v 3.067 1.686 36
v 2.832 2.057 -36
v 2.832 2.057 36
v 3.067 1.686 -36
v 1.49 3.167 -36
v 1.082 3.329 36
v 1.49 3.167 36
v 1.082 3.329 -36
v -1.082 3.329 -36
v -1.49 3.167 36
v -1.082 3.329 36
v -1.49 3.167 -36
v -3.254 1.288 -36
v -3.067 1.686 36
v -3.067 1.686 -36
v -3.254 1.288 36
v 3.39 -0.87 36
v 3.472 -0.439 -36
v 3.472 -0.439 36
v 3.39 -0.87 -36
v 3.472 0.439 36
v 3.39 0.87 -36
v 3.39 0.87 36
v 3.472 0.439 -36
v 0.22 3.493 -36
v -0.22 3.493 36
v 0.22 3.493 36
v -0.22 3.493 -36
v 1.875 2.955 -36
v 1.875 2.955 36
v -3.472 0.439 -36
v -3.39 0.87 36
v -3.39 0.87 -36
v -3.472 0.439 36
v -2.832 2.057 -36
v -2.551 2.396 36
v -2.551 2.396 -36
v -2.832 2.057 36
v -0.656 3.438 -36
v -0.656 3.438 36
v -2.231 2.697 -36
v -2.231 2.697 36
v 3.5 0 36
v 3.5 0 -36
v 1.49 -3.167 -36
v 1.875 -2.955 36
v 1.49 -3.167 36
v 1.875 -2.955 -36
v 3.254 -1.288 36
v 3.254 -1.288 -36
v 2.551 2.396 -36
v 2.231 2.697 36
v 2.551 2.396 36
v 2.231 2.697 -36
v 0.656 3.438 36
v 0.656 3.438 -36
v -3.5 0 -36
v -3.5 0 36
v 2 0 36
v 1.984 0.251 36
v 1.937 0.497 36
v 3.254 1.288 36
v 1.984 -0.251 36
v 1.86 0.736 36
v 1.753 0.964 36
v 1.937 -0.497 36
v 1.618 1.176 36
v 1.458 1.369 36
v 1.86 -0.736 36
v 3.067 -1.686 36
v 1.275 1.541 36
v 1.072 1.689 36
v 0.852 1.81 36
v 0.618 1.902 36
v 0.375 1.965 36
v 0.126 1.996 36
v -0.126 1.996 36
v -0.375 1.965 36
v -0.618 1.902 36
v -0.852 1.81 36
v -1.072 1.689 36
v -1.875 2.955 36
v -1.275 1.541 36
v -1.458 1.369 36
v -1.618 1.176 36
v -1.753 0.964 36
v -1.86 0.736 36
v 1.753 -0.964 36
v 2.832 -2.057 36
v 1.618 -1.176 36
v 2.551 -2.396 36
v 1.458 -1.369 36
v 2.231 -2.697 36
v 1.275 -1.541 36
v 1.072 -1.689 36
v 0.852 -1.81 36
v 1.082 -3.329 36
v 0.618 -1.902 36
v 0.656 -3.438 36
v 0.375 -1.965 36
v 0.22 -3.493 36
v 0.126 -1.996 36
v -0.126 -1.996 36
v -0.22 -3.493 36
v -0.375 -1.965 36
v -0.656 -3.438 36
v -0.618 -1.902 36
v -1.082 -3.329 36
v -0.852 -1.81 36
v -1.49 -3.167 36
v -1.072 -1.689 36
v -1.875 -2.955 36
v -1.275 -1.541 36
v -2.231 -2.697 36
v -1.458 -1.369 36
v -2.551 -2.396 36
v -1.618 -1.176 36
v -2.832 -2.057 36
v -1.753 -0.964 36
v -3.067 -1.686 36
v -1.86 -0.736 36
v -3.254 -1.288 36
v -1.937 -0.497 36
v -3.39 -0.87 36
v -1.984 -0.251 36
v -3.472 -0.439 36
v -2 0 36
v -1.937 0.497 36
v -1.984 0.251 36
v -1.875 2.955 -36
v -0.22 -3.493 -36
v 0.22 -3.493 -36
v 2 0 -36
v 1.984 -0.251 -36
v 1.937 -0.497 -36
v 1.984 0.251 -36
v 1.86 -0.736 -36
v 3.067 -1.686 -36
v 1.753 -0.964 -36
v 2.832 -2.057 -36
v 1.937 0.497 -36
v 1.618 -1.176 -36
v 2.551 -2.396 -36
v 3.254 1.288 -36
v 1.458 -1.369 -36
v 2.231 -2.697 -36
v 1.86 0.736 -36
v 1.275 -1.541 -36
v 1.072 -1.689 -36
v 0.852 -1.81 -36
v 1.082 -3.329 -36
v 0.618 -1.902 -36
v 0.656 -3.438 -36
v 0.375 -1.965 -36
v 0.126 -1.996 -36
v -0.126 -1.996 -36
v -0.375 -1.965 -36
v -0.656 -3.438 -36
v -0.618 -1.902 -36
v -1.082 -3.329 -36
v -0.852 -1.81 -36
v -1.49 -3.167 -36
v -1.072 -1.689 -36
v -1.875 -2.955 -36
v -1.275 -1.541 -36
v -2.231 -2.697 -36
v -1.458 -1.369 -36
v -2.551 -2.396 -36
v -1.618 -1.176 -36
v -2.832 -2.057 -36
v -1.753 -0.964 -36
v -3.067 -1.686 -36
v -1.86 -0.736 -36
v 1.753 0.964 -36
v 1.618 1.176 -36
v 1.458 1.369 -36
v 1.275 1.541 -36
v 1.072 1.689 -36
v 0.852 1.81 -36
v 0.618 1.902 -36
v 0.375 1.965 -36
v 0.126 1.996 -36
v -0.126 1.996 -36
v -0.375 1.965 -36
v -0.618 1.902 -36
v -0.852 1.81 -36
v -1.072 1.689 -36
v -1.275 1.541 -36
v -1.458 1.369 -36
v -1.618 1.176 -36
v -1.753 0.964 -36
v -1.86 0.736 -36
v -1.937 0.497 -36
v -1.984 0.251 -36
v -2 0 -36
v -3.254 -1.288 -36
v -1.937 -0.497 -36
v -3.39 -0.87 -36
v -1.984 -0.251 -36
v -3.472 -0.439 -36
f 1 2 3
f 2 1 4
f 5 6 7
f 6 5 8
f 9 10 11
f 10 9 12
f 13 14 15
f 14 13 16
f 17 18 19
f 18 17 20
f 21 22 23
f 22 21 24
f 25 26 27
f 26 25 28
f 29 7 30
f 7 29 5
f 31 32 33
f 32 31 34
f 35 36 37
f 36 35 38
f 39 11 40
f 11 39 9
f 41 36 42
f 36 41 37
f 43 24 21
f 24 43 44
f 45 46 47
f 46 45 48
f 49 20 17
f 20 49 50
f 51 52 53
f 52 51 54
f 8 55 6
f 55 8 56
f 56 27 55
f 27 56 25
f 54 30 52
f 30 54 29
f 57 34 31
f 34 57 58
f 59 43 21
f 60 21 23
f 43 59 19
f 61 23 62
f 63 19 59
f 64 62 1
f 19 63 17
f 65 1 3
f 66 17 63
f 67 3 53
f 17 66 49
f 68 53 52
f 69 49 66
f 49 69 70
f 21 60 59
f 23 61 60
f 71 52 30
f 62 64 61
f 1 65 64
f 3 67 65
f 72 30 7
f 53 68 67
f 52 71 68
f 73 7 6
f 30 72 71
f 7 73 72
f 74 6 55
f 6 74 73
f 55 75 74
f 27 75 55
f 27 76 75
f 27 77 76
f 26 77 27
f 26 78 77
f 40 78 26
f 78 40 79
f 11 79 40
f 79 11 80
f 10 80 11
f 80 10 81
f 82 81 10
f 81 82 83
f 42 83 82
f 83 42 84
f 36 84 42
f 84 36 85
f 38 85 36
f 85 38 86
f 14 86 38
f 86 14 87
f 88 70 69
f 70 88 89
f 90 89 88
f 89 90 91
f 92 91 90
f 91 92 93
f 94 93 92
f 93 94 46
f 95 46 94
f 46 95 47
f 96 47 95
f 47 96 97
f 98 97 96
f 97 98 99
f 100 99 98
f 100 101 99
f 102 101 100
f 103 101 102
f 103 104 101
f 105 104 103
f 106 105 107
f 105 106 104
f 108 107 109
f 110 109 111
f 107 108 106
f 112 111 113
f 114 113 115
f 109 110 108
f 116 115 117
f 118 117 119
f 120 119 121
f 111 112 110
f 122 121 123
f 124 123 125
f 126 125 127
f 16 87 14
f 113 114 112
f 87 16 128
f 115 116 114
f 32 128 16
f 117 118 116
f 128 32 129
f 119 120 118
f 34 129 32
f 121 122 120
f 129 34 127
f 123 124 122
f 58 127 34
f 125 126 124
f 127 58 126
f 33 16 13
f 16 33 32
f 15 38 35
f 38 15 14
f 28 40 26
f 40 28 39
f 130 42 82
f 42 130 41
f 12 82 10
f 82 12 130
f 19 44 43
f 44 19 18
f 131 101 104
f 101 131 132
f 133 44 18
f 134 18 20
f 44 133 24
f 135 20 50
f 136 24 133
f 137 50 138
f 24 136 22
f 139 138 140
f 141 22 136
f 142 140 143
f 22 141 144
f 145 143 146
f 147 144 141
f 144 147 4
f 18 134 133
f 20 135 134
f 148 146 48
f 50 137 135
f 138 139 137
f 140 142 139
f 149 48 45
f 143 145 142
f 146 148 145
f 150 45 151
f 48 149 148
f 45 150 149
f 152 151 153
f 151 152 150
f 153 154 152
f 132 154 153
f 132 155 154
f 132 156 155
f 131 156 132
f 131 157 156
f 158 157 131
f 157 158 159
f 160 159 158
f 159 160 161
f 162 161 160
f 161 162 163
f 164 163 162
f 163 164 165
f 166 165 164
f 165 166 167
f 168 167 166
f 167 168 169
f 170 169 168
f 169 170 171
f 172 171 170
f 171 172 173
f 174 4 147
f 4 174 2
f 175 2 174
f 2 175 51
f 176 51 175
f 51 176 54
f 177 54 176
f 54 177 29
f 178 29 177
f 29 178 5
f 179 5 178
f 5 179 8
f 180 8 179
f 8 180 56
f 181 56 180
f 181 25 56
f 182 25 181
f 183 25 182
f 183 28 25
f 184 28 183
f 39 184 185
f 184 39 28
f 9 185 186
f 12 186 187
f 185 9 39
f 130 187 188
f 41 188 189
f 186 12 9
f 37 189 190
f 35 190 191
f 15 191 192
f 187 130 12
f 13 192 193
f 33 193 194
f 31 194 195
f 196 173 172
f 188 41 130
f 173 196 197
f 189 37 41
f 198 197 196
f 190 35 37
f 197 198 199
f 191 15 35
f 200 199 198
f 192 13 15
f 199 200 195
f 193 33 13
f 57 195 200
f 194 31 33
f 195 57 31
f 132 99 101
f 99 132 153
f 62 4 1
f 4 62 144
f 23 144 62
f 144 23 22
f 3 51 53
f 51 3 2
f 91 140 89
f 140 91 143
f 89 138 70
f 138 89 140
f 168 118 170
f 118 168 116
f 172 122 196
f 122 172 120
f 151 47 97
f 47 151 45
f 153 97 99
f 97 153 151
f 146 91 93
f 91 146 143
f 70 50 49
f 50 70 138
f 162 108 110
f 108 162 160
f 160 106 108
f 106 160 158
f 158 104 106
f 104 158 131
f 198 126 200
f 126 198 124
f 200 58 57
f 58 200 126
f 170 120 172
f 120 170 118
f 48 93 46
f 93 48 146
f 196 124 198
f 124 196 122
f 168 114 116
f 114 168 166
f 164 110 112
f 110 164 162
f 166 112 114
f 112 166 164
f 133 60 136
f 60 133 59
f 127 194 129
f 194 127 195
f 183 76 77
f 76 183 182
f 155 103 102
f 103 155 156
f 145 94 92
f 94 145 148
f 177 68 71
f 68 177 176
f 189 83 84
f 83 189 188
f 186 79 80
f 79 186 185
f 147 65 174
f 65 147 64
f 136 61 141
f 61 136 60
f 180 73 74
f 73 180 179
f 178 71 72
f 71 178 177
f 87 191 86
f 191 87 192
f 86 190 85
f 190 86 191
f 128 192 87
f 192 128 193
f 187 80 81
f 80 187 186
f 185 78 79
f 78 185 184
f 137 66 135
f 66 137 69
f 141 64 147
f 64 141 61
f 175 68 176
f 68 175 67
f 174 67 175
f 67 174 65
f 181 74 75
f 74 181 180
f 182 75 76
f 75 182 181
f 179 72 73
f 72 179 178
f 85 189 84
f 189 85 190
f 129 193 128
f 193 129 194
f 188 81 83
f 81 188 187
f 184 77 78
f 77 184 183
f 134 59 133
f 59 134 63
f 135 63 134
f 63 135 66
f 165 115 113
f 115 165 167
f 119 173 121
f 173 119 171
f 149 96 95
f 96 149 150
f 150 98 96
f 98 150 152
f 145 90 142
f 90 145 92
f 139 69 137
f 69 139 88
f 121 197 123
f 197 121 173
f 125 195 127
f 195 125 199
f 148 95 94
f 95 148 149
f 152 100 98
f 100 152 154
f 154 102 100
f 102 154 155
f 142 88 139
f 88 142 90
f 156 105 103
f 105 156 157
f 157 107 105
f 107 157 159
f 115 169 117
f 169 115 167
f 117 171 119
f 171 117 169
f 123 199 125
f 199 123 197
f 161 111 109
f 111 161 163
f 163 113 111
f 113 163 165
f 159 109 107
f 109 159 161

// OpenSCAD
$fn = 50;


difference() {
	union() {
		translate(v = [0, 0, -36.0000000000]) {
			cylinder(h = 72, r = 3.5000000000);
		}
	}
	union() {
		translate(v = [0, 0, -100.0000000000]) {
			cylinder(h = 200, r = 2);
		}
	}
}
